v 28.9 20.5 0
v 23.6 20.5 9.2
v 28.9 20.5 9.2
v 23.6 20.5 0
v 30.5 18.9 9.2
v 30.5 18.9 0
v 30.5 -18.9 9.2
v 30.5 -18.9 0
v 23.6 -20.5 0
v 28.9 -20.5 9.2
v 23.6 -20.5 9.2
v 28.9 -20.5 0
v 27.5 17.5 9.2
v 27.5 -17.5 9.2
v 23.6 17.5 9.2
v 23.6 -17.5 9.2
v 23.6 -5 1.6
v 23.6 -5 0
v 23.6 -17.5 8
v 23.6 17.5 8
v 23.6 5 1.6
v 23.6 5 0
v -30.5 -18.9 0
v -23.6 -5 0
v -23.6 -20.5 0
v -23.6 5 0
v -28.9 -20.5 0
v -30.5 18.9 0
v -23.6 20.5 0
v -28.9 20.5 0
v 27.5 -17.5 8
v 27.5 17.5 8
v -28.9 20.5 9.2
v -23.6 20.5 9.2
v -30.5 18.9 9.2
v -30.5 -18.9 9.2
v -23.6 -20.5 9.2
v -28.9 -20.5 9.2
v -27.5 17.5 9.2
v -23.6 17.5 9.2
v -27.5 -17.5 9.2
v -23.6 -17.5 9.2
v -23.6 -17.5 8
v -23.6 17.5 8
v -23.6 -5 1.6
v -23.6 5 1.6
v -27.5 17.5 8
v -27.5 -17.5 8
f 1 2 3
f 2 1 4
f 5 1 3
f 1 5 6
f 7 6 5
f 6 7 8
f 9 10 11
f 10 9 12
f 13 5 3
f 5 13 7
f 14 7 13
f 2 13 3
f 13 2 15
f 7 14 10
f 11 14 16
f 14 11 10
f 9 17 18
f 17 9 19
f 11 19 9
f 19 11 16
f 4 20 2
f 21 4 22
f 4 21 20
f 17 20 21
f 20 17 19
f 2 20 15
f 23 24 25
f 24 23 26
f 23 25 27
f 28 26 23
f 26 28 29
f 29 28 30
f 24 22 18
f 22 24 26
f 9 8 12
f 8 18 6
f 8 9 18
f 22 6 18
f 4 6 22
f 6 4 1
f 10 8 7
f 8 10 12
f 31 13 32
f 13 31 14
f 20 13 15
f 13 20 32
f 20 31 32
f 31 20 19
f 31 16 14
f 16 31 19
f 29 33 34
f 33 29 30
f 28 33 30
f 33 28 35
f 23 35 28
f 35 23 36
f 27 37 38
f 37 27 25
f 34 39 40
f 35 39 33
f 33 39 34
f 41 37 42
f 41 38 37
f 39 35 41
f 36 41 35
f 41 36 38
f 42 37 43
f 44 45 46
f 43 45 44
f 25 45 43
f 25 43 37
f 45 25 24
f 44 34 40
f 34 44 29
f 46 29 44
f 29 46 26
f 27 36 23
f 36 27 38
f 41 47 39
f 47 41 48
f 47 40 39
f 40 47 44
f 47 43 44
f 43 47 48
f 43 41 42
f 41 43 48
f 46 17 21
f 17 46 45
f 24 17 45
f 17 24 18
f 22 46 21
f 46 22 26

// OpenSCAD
// EC1 Rev A | removable cold inspection rest | all lengths in mm
// Open in OpenSCAD, F6 Render, then File > Export > Export as STL.
// Origin = nominal board centre; the flat bed is Z=0. No external libraries.
// Tune the dimensions below, not the STL. Recheck travel and lead clearance after edits.
board_x = 54;
board_y = 34;
clearance = 0.5;   // nominal gap PER SIDE between square board and stop
bearing = 3.4;     // depth inboard of each nominal short edge
seat_z = 8.0;      // underside of seated board above bed/table
lip = 1.2;         // shallow straight stop above underside, no retaining hook
wall = 3.0;        // stock outside the seat opening
clip = 1.6;        // 45-degree cut on each exterior corner in plan
spine_w = 10;      // low central tie, leaving both long sides open
spine_h = 1.6;

sx = board_x/2 + clearance; sy = board_y/2 + clearance;
ox = sx + wall; oy = sy + wall; inner = board_x/2 - bearing;
assert(inner>0 && seat_z>spine_h && clip<wall && spine_w<board_y);

// Right-hand end footprint. Mirroring gives the identical opposite saddle.
module end_plan() {
    polygon([[inner,-oy],[ox-clip,-oy],[ox,-oy+clip],
             [ox,oy-clip],[ox-clip,oy],[inner,oy]]);
}
module saddle() {
    // Cut the rectangular seat from the top only. The two wings and end
    // fence stand on solid material, never cantilevering above the bed.
    difference() {
        linear_extrude(height=seat_z+lip) end_plan();
        translate([-sx,-sy,seat_z]) cube([2*sx,2*sy,lip+1]);
    }
}
union() {
    saddle(); mirror([1,0,0]) saddle();
    // Small overlap at each end fuses the tie into the full-height saddles.
    translate([-inner-0.5,-spine_w/2,0]) cube([2*inner+1,spine_w,spine_h]);
}
